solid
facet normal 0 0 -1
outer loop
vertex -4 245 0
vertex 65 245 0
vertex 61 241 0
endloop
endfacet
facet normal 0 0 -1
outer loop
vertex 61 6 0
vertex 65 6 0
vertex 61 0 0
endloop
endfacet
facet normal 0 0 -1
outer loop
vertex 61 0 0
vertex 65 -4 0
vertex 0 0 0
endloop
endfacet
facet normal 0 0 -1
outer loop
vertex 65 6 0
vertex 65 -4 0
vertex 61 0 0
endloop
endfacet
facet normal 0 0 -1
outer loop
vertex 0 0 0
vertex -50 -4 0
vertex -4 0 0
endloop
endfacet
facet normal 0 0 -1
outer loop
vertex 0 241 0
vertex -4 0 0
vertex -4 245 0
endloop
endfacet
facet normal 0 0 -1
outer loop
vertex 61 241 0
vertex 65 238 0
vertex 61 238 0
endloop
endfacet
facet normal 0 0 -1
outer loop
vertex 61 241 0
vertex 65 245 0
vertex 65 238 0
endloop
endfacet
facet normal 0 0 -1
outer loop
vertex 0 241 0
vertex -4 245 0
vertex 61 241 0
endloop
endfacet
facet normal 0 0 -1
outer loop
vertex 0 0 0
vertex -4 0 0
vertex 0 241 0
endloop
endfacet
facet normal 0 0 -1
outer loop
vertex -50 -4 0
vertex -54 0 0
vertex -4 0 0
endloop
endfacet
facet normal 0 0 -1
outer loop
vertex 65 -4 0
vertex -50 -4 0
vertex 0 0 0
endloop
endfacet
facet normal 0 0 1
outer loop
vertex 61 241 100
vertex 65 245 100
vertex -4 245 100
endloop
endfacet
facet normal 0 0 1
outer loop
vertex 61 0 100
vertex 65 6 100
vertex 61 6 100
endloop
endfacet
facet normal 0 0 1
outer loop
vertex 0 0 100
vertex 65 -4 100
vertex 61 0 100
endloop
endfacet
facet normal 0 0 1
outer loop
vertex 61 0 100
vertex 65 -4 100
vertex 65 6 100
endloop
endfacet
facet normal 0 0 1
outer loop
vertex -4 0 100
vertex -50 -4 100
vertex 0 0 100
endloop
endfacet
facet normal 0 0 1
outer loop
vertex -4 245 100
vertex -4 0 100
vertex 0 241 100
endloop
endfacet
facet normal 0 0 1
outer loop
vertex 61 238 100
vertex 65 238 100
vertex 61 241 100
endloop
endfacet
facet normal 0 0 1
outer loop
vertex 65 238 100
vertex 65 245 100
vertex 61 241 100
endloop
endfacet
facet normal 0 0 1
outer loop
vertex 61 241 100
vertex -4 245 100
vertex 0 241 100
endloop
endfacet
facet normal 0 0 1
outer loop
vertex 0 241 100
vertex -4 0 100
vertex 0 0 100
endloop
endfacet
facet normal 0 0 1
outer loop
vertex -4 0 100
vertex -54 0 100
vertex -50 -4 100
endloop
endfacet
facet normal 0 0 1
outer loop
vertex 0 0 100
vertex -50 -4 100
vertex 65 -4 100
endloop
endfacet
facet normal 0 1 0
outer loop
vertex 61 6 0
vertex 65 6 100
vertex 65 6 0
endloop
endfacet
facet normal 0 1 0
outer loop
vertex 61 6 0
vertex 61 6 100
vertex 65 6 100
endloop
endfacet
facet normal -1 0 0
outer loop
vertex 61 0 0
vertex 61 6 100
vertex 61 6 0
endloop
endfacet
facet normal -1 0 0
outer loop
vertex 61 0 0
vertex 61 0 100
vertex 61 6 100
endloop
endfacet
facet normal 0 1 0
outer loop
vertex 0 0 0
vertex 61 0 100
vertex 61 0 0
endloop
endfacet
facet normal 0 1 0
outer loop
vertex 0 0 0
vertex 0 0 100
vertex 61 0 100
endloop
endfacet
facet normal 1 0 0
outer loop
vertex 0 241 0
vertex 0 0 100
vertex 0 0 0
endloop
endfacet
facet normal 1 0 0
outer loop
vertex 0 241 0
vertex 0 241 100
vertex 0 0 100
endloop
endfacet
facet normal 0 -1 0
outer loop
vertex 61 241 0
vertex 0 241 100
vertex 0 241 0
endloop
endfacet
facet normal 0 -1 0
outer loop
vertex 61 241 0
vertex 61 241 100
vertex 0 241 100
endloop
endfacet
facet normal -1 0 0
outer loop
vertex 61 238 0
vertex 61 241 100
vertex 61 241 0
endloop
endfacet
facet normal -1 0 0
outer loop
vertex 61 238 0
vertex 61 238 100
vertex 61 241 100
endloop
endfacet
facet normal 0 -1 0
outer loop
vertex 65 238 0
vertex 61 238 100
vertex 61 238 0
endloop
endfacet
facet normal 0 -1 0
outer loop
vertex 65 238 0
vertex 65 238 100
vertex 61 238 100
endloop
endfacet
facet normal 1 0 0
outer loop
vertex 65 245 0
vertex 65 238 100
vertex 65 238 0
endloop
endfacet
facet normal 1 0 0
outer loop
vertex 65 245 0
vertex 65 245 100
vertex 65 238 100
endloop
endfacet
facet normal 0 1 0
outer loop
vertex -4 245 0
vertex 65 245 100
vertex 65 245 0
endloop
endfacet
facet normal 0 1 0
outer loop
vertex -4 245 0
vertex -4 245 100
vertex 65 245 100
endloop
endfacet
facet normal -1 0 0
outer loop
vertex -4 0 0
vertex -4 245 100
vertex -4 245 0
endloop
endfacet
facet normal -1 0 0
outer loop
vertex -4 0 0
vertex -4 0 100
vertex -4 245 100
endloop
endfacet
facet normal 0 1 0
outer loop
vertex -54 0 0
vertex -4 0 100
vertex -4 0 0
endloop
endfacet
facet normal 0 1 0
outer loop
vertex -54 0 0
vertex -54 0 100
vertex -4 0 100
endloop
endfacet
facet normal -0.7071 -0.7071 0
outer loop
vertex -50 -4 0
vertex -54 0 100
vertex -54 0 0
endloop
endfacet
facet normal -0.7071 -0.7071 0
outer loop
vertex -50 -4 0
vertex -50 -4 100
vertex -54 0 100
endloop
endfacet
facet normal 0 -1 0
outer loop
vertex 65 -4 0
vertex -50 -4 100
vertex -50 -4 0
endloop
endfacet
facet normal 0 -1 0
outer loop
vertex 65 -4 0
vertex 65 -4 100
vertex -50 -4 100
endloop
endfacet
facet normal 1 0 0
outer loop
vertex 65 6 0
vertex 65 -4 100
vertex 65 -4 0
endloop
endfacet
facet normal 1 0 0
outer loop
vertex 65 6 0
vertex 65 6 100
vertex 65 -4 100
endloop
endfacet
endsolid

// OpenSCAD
height = 57;
thickness = 4;
deviceLength = 235;
width = 100;
overlapTop = 6;
overlapBottom = 3;
length = deviceLength + overlapTop;

// we make a polyline of 3 mm thickness that we will extrude

polyline = [
    [-50,-thickness],
    [thickness + height + thickness, -thickness],
    [thickness + height + thickness, overlapTop],
    [thickness + height, overlapTop],
    [thickness + height, 0],
    [0, 0],
    [0, length],
    [thickness + height, length],
    [thickness + height, length - overlapBottom],
    [thickness + height + thickness, length - overlapBottom],
    [thickness + height + thickness, length + thickness],
    [-thickness, length + thickness],
    [-thickness, 0],
    [-thickness - 50, 0]
];

linear_extrude(width)
   polygon(polyline);
